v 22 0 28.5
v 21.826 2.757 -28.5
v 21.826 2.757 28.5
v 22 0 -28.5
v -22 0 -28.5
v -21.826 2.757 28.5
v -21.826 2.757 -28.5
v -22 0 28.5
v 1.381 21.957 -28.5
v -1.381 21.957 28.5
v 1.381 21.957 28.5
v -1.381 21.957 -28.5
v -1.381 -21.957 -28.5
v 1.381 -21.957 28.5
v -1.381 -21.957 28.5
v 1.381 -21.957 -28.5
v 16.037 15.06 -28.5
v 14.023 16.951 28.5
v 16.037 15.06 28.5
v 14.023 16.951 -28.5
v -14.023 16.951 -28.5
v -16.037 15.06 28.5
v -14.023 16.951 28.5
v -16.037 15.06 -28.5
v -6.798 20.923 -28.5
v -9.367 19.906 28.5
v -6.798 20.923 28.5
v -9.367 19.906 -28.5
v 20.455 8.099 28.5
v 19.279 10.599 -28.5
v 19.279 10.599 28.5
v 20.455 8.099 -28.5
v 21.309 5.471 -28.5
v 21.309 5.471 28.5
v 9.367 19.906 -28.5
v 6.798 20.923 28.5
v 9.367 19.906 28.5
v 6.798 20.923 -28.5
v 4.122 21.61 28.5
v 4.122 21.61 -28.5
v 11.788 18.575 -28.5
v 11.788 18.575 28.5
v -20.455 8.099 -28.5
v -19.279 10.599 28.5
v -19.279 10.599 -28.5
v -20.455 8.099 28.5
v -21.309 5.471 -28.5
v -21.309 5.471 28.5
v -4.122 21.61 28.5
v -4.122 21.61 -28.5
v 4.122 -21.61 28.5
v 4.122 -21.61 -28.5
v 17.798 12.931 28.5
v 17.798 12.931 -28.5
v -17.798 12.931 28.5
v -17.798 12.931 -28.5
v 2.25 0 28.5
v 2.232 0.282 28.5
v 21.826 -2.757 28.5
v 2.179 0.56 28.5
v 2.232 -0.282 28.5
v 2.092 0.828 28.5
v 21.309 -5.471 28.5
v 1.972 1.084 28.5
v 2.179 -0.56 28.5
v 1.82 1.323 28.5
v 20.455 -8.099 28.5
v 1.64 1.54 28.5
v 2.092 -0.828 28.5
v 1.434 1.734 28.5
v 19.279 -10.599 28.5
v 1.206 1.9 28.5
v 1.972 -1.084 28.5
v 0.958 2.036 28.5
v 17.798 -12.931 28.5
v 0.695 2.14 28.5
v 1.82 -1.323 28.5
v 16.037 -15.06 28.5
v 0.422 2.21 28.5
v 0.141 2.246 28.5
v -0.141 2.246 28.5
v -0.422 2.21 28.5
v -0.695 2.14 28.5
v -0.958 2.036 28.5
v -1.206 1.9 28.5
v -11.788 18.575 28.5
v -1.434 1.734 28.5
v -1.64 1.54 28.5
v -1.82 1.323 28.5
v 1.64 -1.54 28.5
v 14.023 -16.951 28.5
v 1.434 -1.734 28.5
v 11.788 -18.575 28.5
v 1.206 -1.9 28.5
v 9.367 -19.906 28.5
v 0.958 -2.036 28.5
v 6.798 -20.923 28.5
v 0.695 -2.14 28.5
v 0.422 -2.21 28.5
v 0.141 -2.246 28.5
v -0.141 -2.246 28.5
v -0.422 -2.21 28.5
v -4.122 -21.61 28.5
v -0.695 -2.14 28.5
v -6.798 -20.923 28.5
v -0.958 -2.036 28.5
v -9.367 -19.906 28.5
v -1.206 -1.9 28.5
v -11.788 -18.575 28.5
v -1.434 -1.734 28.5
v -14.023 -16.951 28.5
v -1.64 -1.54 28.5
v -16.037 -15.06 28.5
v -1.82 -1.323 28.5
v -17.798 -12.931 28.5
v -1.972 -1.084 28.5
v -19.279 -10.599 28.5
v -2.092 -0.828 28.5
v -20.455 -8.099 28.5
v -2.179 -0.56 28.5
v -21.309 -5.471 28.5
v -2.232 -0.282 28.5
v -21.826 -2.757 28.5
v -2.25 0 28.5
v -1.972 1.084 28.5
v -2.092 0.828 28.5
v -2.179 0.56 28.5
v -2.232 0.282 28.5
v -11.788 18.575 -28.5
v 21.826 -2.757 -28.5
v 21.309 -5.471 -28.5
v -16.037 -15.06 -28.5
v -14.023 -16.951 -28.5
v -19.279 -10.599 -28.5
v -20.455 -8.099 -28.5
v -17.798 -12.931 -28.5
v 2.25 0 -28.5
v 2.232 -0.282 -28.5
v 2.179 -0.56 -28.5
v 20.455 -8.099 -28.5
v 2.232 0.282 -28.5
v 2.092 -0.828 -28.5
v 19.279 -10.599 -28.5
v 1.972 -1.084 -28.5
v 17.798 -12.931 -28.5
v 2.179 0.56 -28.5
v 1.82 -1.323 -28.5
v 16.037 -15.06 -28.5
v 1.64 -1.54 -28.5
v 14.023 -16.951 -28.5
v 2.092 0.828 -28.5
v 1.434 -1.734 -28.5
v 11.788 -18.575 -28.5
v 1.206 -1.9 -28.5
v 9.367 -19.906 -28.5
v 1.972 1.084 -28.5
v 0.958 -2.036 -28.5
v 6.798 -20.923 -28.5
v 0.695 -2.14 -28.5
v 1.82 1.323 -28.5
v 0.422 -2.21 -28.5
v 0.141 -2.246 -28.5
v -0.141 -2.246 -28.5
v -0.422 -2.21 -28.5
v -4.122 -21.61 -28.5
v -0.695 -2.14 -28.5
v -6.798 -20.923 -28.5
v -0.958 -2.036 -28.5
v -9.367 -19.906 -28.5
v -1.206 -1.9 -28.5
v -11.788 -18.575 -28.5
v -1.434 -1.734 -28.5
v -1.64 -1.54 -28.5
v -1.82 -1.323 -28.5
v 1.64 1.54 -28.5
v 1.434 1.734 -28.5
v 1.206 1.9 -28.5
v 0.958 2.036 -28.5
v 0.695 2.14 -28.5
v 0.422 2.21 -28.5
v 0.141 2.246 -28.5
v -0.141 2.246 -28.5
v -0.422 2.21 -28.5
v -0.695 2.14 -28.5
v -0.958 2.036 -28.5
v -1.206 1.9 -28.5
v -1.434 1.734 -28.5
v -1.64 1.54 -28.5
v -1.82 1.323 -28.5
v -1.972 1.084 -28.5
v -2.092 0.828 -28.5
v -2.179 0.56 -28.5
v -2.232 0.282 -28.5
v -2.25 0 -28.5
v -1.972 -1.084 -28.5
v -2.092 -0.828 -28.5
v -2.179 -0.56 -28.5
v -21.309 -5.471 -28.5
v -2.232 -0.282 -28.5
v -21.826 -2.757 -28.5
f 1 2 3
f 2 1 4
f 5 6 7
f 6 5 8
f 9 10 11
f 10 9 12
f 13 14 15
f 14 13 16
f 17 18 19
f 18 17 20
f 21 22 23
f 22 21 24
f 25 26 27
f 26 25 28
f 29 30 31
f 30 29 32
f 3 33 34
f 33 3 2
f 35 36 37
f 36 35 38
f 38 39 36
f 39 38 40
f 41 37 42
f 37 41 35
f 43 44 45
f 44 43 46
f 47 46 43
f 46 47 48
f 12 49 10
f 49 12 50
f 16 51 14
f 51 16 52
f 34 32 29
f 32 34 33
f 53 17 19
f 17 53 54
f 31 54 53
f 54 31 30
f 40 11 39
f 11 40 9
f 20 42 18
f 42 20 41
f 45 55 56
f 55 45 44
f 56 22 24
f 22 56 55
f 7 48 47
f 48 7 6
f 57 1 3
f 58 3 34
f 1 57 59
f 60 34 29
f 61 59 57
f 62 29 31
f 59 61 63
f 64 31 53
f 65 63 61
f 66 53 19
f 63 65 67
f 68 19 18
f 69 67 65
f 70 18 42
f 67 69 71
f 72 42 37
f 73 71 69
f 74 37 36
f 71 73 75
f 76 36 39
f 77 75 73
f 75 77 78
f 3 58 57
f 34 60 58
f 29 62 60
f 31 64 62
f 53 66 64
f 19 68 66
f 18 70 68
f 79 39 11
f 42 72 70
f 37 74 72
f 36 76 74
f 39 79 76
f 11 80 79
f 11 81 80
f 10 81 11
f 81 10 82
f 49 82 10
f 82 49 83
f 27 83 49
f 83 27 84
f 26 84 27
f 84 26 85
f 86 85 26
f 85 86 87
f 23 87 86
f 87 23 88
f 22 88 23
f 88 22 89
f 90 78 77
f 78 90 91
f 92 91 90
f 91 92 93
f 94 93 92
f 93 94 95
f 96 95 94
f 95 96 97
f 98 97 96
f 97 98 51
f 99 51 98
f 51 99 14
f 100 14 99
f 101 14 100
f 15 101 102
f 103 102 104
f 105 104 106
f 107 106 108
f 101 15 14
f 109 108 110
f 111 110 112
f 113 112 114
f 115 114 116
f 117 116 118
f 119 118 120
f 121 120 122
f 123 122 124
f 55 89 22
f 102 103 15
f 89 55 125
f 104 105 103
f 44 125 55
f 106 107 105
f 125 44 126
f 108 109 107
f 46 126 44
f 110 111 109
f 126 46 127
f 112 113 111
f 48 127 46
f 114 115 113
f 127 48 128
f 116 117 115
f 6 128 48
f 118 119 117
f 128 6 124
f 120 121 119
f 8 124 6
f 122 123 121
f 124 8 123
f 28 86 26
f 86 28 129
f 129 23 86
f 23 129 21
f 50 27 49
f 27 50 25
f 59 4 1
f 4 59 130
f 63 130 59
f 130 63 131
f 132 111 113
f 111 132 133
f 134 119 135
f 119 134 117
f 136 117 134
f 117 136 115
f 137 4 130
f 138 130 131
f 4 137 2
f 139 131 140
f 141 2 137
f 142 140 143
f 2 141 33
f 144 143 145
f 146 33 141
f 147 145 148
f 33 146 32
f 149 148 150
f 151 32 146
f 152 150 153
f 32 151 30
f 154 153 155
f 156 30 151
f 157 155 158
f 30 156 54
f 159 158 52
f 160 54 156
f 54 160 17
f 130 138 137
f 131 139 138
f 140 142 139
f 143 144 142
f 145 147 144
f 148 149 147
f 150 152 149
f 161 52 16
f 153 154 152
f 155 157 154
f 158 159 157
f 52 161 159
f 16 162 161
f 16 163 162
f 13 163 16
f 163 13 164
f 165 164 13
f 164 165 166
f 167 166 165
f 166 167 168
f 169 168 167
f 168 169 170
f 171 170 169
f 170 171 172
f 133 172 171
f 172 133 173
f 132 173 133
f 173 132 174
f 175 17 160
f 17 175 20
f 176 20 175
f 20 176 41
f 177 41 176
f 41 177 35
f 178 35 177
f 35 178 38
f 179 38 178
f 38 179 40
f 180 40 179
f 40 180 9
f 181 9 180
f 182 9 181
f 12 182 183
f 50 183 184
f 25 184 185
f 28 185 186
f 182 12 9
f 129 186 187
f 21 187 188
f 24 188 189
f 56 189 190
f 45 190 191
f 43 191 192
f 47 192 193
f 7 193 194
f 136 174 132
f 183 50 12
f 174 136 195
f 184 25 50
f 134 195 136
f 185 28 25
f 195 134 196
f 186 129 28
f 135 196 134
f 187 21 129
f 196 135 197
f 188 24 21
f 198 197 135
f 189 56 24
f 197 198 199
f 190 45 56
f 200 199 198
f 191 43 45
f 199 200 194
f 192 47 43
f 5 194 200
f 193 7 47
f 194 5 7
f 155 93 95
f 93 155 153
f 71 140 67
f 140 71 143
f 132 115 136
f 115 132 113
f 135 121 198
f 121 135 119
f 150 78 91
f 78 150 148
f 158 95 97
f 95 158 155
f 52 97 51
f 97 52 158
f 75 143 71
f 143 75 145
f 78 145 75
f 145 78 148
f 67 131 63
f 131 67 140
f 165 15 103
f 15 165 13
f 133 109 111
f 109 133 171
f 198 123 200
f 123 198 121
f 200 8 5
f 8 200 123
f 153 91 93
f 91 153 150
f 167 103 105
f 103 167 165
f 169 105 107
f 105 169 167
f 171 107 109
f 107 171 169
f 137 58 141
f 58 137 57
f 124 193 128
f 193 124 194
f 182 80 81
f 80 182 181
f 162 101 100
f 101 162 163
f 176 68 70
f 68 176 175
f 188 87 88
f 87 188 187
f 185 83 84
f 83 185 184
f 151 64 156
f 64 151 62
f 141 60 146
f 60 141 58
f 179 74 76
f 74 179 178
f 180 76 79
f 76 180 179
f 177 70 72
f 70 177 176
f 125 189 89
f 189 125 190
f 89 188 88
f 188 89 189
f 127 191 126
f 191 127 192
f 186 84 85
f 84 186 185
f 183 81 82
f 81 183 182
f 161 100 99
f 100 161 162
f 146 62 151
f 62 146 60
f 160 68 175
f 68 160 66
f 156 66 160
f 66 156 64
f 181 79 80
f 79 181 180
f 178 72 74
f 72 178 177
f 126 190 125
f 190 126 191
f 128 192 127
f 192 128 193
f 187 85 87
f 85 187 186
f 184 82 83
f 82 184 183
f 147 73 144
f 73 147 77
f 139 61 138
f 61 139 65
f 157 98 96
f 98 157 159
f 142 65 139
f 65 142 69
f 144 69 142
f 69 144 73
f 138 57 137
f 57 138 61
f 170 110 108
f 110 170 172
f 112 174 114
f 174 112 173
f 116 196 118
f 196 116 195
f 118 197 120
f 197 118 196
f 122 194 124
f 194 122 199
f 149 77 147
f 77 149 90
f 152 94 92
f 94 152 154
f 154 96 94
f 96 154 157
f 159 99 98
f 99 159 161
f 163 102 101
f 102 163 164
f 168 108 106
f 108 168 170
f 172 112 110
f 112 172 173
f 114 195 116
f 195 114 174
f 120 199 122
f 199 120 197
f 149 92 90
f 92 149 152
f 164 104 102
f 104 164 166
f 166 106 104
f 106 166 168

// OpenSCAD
$fn = 50;


difference() {
	union() {
		translate(v = [0, 0, -28.5000000000]) {
			cylinder(h = 57, r = 22.0000000000);
		}
	}
	union() {
		translate(v = [0, 0, -100.0000000000]) {
			cylinder(h = 200, r = 2.2500000000);
		}
	}
}
